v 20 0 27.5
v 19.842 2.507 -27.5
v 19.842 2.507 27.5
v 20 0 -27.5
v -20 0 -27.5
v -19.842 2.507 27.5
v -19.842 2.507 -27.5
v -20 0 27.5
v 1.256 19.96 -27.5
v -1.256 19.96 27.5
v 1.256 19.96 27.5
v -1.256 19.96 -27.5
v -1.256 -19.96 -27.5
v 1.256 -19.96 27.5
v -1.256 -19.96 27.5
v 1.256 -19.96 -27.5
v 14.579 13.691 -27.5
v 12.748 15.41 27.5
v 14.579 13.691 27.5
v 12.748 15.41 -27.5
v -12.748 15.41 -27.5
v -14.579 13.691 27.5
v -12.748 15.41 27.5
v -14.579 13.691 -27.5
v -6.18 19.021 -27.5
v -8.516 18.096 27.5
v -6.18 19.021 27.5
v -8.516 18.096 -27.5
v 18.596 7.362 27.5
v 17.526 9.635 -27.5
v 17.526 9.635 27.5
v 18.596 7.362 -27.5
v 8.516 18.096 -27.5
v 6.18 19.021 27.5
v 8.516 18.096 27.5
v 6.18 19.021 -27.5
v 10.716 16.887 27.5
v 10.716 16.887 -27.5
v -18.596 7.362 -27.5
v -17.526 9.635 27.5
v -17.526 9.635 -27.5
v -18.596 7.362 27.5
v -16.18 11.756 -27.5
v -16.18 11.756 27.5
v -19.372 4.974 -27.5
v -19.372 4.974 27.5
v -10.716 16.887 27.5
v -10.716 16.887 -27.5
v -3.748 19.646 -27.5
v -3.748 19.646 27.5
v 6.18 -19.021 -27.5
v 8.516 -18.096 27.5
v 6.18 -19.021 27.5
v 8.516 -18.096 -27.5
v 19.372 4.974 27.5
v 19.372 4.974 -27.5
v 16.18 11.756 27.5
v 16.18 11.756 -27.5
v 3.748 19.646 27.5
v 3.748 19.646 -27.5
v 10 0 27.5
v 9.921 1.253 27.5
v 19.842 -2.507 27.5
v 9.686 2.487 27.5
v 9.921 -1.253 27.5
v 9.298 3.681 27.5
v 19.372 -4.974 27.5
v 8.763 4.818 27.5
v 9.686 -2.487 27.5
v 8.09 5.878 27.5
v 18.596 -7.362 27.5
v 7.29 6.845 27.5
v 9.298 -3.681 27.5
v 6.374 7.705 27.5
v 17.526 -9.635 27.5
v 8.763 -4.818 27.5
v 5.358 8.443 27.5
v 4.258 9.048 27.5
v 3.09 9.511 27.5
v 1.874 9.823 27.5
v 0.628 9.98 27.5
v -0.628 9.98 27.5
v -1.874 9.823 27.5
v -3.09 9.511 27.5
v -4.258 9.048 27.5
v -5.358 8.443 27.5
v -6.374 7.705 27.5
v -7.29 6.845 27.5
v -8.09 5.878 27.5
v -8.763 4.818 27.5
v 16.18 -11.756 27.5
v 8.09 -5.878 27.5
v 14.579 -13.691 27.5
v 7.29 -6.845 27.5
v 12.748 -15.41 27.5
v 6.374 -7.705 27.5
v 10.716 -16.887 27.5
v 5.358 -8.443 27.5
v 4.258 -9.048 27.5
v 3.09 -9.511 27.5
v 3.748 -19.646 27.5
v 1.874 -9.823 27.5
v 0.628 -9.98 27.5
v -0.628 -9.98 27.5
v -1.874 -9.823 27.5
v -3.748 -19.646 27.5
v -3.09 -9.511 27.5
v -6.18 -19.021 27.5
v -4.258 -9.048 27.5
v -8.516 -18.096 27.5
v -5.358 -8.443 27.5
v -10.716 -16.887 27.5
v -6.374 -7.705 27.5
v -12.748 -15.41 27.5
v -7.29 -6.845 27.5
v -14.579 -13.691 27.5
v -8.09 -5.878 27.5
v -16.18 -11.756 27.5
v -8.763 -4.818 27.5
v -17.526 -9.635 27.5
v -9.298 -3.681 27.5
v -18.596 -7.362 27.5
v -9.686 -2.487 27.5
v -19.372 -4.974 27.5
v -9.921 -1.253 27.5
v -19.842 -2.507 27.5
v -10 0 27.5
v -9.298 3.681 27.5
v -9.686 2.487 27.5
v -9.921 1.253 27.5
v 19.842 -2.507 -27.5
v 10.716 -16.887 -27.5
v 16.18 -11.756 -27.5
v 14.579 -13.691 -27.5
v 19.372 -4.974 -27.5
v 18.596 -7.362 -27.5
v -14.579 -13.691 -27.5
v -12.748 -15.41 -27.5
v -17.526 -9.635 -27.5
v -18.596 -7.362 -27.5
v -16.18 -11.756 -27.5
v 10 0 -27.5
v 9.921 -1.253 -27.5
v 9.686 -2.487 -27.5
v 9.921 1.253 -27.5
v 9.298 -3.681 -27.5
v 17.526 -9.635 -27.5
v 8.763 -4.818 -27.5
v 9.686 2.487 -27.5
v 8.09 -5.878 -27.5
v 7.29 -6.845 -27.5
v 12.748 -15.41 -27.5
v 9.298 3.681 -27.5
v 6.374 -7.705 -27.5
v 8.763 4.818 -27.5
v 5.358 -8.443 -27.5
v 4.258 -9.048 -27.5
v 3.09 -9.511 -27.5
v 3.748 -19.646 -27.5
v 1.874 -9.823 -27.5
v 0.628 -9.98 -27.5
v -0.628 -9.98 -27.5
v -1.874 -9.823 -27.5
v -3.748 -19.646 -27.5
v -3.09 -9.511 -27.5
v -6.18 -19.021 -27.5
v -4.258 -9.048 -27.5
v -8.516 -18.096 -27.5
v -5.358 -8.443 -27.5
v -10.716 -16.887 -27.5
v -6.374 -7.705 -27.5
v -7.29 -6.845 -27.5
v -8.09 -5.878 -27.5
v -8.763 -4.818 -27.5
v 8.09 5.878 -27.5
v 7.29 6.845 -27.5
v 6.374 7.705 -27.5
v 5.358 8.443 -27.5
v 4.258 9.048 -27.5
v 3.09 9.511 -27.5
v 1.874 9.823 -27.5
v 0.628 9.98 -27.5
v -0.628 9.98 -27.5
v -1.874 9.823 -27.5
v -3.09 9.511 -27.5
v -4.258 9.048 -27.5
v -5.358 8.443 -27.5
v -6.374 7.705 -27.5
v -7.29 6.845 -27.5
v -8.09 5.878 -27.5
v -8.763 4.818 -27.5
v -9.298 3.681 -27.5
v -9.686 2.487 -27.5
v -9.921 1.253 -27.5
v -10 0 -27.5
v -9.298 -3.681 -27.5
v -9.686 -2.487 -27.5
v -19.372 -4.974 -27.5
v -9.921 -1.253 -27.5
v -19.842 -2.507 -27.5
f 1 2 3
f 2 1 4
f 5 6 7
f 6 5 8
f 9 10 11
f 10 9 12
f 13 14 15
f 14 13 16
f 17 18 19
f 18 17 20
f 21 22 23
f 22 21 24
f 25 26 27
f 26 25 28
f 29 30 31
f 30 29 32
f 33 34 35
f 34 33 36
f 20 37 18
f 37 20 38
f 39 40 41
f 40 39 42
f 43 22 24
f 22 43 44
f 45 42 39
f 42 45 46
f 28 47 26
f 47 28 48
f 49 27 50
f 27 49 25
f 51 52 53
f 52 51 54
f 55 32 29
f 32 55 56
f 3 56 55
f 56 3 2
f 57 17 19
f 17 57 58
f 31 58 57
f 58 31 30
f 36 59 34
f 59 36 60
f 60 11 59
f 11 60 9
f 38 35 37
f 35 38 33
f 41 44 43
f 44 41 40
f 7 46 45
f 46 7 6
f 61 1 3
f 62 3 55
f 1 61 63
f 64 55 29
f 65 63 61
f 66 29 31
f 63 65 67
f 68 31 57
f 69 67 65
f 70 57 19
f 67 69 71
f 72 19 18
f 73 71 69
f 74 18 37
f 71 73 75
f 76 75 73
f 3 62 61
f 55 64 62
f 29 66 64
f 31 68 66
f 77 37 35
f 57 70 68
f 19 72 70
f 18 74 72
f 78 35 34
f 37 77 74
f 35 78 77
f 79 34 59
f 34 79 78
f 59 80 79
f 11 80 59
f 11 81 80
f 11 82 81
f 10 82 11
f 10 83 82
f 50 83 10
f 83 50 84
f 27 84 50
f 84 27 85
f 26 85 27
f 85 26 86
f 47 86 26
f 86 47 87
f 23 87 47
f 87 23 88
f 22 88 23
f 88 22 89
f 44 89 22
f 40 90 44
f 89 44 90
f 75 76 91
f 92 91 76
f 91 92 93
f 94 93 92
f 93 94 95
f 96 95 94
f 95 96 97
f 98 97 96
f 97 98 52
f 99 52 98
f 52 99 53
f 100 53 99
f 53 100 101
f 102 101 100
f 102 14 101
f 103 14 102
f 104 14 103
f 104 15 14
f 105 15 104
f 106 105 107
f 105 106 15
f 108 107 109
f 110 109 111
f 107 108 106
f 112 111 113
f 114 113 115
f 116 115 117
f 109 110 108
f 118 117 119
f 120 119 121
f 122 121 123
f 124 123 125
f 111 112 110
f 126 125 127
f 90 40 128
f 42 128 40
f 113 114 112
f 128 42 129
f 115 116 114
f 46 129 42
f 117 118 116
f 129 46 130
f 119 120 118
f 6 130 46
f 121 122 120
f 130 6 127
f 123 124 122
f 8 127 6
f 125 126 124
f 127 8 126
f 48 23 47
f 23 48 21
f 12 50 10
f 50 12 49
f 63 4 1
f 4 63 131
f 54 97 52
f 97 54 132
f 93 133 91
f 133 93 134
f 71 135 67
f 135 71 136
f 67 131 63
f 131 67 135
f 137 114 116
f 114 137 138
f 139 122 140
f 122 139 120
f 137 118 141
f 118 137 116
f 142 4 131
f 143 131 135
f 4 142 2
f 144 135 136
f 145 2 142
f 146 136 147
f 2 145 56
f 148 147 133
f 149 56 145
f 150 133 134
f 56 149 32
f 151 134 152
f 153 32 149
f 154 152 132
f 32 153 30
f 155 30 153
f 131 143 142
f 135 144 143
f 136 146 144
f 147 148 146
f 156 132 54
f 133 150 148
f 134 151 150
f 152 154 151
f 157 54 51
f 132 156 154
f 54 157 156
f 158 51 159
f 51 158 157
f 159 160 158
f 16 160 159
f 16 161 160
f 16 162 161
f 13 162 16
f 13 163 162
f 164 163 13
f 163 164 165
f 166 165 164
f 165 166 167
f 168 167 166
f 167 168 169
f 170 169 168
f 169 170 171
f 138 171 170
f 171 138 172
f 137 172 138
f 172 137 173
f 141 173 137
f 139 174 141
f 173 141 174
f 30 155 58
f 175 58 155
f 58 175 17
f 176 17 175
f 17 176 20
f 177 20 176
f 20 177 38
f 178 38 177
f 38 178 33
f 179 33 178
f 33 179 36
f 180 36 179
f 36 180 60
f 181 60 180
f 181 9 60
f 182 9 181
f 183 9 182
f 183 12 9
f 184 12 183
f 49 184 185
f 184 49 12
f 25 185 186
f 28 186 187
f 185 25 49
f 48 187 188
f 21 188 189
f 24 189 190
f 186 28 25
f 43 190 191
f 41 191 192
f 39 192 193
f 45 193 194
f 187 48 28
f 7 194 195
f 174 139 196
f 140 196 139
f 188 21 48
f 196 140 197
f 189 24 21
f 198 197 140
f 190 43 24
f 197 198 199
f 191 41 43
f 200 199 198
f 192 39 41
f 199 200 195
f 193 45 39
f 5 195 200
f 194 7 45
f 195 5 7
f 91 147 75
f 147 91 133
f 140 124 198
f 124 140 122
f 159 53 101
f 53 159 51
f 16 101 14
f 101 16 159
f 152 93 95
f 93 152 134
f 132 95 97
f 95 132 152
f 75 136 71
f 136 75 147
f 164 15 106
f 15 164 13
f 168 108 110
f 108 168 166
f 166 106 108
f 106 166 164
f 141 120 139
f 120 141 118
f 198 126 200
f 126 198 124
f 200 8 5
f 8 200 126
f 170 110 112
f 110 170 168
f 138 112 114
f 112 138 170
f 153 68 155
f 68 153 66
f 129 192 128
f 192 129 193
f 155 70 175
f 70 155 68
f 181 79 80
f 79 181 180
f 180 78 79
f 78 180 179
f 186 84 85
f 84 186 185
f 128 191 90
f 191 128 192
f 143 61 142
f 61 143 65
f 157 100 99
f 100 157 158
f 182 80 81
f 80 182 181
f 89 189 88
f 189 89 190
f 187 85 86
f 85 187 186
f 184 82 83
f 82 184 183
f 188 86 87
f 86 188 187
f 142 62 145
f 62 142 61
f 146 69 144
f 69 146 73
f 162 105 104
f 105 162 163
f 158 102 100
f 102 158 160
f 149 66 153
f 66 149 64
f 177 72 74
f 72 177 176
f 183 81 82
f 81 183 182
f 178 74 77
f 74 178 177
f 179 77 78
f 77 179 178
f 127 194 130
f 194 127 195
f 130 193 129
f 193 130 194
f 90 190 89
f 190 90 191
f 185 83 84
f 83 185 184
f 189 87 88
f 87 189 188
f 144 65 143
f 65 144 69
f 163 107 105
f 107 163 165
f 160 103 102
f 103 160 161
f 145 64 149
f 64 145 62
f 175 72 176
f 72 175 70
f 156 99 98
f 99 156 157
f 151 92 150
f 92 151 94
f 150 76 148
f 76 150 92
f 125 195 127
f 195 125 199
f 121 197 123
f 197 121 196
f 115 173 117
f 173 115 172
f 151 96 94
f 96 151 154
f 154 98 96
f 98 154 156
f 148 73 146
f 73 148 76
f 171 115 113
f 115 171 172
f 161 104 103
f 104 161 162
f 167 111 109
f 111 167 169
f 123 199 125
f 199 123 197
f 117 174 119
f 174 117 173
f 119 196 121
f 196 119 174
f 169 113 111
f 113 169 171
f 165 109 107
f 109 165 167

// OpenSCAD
$fn = 50;


difference() {
	union() {
		translate(v = [0, 0, -27.5000000000]) {
			cylinder(h = 55, r = 20.0000000000);
		}
	}
	union() {
		translate(v = [0, 0, -100.0000000000]) {
			cylinder(h = 200, r = 10);
		}
	}
}
